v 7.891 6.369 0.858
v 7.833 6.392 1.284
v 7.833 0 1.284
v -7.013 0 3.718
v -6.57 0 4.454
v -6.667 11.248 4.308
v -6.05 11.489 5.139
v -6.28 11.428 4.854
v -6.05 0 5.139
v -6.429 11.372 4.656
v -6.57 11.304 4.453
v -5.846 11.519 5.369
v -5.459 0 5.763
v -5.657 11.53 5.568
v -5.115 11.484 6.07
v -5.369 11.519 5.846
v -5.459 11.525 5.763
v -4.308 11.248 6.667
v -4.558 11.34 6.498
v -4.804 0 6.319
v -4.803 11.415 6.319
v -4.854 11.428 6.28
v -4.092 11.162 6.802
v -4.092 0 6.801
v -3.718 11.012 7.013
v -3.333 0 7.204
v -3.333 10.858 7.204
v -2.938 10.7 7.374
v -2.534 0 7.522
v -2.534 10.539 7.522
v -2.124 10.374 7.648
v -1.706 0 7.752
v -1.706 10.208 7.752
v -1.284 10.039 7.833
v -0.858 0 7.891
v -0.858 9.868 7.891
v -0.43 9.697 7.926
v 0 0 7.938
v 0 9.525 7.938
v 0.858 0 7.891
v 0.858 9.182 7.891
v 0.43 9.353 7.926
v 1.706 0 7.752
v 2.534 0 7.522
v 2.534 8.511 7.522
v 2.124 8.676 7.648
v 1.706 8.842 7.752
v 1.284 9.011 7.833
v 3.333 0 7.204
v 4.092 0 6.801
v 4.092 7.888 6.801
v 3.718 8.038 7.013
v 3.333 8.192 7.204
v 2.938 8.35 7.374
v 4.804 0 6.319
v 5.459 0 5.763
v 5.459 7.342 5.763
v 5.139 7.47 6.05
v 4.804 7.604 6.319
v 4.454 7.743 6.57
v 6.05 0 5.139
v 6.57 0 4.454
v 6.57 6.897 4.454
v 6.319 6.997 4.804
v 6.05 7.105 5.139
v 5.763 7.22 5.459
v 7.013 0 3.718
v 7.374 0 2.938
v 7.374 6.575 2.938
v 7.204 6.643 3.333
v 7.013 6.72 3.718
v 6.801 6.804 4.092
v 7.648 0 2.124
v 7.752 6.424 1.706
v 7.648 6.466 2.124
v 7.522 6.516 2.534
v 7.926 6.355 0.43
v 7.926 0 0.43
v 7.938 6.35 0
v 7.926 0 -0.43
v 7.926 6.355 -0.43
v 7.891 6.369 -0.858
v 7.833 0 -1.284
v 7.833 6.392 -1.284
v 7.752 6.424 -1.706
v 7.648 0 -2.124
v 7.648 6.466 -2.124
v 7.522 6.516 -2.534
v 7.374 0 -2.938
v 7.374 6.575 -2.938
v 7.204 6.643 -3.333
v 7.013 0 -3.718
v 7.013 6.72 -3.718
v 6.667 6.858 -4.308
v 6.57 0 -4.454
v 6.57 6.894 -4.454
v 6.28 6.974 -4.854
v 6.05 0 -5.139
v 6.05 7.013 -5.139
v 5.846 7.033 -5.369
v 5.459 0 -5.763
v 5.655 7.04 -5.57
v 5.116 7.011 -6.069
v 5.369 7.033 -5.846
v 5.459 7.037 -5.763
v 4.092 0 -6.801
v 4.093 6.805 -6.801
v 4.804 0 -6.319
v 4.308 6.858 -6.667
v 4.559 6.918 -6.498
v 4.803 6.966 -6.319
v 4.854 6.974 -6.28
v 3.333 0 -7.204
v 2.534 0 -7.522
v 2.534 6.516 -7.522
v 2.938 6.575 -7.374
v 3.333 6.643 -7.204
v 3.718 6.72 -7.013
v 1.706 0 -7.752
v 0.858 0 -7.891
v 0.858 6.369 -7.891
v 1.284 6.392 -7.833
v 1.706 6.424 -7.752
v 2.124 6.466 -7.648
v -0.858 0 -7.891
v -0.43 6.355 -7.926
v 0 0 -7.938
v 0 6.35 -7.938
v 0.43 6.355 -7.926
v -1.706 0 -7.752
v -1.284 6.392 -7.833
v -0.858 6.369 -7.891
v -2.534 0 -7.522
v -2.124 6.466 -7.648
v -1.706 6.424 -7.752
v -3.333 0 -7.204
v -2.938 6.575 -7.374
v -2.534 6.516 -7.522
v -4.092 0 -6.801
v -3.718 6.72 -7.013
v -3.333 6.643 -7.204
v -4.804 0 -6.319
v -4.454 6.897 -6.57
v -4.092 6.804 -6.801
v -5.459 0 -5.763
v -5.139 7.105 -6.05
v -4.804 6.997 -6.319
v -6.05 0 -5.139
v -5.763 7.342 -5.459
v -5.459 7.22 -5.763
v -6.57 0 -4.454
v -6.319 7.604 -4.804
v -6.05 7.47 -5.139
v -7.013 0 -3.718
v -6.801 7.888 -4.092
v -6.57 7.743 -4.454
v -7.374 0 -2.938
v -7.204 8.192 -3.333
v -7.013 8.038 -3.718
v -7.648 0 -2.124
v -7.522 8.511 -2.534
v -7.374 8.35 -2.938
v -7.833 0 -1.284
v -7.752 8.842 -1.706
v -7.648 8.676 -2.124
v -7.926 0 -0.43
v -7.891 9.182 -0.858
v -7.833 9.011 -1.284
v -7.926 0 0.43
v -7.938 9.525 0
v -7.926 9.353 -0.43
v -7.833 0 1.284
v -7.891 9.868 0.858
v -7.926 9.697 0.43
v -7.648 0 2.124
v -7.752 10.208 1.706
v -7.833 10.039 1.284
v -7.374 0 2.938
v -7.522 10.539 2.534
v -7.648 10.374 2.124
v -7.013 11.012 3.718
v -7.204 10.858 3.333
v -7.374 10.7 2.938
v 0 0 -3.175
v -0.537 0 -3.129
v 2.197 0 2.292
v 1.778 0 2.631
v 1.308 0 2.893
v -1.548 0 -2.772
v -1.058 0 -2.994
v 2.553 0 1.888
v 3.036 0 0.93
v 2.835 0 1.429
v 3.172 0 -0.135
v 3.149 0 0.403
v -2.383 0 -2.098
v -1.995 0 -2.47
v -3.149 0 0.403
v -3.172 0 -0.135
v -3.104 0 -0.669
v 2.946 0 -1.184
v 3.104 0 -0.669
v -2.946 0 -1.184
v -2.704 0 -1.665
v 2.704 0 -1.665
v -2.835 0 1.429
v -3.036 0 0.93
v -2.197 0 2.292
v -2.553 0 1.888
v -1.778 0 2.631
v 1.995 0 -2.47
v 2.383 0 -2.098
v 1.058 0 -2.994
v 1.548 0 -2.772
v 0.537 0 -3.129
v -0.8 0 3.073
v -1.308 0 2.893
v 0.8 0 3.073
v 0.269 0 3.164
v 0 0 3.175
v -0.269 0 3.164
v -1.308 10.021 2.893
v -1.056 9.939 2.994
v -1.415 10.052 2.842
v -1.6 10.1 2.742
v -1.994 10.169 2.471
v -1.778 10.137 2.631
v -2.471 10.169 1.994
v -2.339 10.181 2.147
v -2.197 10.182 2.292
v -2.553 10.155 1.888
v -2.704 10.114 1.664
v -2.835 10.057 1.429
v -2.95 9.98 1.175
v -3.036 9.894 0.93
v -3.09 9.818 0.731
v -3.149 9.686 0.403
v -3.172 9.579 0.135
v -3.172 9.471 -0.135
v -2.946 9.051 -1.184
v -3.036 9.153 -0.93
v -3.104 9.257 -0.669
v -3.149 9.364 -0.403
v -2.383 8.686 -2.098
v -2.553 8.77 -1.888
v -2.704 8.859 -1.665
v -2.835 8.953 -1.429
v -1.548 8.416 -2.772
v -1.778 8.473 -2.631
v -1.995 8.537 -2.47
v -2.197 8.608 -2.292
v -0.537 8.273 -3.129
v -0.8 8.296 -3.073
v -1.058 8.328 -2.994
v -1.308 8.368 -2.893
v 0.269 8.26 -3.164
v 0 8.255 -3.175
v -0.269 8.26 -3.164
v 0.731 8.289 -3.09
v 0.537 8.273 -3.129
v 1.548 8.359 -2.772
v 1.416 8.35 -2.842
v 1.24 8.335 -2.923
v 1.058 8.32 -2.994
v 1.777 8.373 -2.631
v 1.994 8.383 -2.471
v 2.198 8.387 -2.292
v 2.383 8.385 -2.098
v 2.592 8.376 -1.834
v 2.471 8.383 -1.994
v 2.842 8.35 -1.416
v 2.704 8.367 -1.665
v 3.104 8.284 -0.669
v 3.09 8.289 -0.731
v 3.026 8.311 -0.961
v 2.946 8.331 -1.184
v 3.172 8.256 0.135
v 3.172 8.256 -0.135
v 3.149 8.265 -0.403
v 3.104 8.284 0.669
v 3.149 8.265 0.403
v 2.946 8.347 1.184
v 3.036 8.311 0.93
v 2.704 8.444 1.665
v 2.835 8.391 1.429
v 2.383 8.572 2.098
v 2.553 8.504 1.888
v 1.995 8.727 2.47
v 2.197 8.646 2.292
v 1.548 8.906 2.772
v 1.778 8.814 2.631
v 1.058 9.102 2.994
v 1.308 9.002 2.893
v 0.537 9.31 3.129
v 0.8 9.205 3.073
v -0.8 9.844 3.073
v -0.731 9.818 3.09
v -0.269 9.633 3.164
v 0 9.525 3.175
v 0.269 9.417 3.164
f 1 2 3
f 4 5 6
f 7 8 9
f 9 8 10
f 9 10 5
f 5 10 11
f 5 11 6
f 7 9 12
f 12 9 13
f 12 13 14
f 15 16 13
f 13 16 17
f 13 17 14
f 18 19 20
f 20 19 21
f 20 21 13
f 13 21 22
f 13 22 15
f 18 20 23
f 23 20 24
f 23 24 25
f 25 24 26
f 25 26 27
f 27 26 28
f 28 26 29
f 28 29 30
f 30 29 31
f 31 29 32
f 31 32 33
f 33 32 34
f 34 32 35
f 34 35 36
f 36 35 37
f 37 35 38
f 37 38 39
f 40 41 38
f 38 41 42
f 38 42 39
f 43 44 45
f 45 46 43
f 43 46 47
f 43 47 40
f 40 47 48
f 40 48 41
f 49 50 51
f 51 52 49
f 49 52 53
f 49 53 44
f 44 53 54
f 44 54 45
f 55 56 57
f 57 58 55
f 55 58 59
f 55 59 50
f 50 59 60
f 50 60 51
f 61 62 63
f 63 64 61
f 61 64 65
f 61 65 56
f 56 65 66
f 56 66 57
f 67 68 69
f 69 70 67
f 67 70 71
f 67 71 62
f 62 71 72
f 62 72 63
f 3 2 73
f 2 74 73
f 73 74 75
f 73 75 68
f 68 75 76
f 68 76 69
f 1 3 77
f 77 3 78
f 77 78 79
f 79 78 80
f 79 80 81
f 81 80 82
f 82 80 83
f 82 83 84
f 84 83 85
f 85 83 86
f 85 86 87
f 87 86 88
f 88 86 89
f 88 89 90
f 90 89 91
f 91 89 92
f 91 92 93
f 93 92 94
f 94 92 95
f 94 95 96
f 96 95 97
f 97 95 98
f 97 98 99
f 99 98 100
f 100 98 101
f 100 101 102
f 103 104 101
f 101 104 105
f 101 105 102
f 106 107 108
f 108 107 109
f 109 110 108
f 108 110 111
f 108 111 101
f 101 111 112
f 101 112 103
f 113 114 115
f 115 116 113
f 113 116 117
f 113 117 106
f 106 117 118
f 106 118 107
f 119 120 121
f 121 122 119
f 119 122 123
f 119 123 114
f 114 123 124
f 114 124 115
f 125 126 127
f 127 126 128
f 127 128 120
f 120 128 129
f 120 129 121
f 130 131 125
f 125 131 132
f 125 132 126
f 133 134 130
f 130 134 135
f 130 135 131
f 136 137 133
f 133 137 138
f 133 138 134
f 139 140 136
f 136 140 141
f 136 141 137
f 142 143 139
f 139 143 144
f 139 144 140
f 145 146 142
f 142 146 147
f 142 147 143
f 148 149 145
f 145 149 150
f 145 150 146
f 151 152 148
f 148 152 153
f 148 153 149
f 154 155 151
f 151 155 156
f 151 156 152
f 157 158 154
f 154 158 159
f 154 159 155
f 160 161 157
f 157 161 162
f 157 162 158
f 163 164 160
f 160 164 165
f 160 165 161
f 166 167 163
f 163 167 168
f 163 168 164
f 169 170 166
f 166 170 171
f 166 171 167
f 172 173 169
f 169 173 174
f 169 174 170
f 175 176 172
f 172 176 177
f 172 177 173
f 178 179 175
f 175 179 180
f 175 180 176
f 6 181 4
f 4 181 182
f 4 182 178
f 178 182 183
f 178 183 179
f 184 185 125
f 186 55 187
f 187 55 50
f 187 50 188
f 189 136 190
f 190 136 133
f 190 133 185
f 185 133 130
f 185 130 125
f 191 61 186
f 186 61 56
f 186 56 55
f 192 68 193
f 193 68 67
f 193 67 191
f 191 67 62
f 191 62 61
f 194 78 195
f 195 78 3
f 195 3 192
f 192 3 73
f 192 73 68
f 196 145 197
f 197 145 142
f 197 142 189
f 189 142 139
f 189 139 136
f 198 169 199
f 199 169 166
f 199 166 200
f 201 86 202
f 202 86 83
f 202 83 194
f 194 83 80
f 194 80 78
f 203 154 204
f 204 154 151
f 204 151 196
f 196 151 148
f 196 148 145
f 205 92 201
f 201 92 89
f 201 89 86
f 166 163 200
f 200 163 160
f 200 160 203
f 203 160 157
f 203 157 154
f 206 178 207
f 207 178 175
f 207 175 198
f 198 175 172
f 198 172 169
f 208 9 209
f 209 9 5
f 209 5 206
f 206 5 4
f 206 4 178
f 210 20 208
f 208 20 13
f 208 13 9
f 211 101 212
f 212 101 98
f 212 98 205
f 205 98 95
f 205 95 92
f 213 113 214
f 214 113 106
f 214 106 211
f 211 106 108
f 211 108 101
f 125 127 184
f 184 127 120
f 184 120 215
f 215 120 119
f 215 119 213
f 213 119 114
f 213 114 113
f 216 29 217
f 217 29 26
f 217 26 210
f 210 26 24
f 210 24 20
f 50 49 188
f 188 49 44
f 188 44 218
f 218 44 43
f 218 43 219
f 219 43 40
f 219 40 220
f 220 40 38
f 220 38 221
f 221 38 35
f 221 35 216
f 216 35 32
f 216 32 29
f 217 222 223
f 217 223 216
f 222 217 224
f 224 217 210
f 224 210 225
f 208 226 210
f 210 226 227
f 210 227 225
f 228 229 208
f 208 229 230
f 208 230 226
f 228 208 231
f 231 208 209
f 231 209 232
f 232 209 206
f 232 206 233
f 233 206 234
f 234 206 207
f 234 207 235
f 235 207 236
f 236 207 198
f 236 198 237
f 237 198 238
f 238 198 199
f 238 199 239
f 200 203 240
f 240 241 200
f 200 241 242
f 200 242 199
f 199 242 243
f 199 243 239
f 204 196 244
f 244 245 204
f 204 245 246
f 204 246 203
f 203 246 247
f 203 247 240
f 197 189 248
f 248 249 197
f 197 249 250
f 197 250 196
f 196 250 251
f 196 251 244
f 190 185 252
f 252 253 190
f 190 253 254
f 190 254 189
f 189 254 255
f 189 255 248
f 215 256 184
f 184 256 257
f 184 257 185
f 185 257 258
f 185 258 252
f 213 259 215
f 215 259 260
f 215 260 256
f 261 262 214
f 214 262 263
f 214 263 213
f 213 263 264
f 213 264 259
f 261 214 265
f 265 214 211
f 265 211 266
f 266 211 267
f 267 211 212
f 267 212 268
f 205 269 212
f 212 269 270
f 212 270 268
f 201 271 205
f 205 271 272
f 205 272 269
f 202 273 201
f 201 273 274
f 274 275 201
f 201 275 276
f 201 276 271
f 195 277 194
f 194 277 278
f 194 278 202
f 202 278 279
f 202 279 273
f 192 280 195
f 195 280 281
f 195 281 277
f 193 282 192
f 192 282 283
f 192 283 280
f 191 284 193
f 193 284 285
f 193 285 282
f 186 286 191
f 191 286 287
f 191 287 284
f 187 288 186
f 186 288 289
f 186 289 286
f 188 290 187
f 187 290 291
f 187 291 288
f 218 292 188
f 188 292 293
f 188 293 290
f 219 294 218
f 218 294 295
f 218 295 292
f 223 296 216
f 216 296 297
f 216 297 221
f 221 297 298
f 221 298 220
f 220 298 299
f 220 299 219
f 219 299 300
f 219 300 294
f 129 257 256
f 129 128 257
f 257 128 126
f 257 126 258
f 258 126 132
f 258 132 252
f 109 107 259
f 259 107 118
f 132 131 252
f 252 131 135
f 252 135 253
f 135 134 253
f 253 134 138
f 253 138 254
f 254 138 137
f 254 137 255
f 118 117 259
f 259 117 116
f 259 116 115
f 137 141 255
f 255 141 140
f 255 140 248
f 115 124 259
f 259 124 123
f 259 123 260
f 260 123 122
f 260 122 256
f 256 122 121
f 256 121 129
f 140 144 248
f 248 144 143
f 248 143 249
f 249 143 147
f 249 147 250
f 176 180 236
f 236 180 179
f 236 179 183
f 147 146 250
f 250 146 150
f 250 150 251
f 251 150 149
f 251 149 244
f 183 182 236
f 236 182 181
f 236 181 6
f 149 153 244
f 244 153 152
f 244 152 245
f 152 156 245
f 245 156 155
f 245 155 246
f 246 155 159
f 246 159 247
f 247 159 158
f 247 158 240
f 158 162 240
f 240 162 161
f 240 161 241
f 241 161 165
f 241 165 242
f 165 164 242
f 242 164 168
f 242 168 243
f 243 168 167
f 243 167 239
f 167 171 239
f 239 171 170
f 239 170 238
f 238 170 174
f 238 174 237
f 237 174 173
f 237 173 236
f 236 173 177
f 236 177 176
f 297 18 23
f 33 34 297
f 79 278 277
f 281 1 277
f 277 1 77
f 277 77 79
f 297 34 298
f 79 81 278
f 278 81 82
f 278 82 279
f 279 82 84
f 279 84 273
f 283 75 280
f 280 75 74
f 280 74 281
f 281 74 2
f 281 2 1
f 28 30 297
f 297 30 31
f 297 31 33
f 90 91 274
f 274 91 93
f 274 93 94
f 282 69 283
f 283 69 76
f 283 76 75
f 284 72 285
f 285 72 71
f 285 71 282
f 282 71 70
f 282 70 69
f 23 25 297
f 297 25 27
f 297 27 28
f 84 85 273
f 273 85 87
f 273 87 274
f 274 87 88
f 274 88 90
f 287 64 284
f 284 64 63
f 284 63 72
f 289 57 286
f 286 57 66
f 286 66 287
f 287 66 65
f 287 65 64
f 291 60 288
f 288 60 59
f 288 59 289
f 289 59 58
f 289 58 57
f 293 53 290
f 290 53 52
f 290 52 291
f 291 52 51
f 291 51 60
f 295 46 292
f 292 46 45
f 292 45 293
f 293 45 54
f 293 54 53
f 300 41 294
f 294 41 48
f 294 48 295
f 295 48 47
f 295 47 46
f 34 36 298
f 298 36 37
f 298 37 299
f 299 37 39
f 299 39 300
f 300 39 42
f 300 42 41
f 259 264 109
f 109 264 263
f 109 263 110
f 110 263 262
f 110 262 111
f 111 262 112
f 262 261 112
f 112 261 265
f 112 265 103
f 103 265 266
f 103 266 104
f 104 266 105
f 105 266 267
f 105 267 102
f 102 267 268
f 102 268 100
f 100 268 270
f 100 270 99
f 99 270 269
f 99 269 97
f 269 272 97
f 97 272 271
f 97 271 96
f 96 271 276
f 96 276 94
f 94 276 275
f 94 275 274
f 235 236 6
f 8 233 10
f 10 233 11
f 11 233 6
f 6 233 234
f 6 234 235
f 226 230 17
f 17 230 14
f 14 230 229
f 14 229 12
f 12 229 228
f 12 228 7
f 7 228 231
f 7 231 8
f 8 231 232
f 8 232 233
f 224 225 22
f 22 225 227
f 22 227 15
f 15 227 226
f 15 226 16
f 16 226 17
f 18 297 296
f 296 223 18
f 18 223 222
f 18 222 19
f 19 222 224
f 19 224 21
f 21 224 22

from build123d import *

# Parameters (mm, degrees)
SKETCH1_R               = 7.9375
SKETCH1_R_2             = 3.175
BOSS_EXTRUDE1_DEPTH     = 12.7
CUT_EXTRUDE1_DEPTH      = 17.949861725
CUT_EXTRUDE1_DEPTH_BACK = 17.949861725
CUT_EXTRUDE3_DEPTH      = 17.949861725
CUT_EXTRUDE3_DEPTH_BACK = 17.949861725
FILLET1_R               = 6.35


with BuildPart() as part:
    # Sketch1 → Boss-Extrude1 (new body)
    with BuildSketch(Plane(origin=(0, 0, 0), x_dir=(1, 0, 0), z_dir=(0, 1, 0))):
        with Locations(Location((0, 0, 0), (0, 0, 270))):
            Circle(SKETCH1_R)
        with Locations(Location((0, 0, 0), (0, 0, 270))):
            Circle(SKETCH1_R_2, mode=Mode.SUBTRACT)
    extrude(amount=BOSS_EXTRUDE1_DEPTH)

    # Sketch2 → Cut-Extrude1 (cut, two sides: drawn at the far end of the back side and taken through both)
    with BuildSketch(Plane(origin=(0, 0, 0), x_dir=(0, 0, -1), z_dir=(1, 0, 0)).offset(-CUT_EXTRUDE1_DEPTH_BACK)):
        Polygon((7.9375, 12.7), (-7.9375, 12.7), (7.9375, 6.35), align=None)
    extrude(amount=CUT_EXTRUDE1_DEPTH + CUT_EXTRUDE1_DEPTH_BACK, mode=Mode.SUBTRACT)

    # Sketch3 → Cut-Extrude3 (cut, two sides: drawn at the far end of the back side and taken through both)
    with BuildSketch(Plane.XY.offset(-CUT_EXTRUDE3_DEPTH_BACK)):
        Polygon((7.9375, 12.7), (-7.9375, 12.7), (7.9375, 6.35), align=None)
    extrude(amount=CUT_EXTRUDE3_DEPTH + CUT_EXTRUDE3_DEPTH_BACK, mode=Mode.SUBTRACT)

    # Fillet1
    fillet1_edges = [part.edges().sort_by_distance(p)[0] for p in [
        (-3.928862053, 11.096544821, 3.928862053),
        (3.928862053, 7.953455179, -3.928862053),
    ]]
    fillet(fillet1_edges, radius=FILLET1_R)


solid = part.part
